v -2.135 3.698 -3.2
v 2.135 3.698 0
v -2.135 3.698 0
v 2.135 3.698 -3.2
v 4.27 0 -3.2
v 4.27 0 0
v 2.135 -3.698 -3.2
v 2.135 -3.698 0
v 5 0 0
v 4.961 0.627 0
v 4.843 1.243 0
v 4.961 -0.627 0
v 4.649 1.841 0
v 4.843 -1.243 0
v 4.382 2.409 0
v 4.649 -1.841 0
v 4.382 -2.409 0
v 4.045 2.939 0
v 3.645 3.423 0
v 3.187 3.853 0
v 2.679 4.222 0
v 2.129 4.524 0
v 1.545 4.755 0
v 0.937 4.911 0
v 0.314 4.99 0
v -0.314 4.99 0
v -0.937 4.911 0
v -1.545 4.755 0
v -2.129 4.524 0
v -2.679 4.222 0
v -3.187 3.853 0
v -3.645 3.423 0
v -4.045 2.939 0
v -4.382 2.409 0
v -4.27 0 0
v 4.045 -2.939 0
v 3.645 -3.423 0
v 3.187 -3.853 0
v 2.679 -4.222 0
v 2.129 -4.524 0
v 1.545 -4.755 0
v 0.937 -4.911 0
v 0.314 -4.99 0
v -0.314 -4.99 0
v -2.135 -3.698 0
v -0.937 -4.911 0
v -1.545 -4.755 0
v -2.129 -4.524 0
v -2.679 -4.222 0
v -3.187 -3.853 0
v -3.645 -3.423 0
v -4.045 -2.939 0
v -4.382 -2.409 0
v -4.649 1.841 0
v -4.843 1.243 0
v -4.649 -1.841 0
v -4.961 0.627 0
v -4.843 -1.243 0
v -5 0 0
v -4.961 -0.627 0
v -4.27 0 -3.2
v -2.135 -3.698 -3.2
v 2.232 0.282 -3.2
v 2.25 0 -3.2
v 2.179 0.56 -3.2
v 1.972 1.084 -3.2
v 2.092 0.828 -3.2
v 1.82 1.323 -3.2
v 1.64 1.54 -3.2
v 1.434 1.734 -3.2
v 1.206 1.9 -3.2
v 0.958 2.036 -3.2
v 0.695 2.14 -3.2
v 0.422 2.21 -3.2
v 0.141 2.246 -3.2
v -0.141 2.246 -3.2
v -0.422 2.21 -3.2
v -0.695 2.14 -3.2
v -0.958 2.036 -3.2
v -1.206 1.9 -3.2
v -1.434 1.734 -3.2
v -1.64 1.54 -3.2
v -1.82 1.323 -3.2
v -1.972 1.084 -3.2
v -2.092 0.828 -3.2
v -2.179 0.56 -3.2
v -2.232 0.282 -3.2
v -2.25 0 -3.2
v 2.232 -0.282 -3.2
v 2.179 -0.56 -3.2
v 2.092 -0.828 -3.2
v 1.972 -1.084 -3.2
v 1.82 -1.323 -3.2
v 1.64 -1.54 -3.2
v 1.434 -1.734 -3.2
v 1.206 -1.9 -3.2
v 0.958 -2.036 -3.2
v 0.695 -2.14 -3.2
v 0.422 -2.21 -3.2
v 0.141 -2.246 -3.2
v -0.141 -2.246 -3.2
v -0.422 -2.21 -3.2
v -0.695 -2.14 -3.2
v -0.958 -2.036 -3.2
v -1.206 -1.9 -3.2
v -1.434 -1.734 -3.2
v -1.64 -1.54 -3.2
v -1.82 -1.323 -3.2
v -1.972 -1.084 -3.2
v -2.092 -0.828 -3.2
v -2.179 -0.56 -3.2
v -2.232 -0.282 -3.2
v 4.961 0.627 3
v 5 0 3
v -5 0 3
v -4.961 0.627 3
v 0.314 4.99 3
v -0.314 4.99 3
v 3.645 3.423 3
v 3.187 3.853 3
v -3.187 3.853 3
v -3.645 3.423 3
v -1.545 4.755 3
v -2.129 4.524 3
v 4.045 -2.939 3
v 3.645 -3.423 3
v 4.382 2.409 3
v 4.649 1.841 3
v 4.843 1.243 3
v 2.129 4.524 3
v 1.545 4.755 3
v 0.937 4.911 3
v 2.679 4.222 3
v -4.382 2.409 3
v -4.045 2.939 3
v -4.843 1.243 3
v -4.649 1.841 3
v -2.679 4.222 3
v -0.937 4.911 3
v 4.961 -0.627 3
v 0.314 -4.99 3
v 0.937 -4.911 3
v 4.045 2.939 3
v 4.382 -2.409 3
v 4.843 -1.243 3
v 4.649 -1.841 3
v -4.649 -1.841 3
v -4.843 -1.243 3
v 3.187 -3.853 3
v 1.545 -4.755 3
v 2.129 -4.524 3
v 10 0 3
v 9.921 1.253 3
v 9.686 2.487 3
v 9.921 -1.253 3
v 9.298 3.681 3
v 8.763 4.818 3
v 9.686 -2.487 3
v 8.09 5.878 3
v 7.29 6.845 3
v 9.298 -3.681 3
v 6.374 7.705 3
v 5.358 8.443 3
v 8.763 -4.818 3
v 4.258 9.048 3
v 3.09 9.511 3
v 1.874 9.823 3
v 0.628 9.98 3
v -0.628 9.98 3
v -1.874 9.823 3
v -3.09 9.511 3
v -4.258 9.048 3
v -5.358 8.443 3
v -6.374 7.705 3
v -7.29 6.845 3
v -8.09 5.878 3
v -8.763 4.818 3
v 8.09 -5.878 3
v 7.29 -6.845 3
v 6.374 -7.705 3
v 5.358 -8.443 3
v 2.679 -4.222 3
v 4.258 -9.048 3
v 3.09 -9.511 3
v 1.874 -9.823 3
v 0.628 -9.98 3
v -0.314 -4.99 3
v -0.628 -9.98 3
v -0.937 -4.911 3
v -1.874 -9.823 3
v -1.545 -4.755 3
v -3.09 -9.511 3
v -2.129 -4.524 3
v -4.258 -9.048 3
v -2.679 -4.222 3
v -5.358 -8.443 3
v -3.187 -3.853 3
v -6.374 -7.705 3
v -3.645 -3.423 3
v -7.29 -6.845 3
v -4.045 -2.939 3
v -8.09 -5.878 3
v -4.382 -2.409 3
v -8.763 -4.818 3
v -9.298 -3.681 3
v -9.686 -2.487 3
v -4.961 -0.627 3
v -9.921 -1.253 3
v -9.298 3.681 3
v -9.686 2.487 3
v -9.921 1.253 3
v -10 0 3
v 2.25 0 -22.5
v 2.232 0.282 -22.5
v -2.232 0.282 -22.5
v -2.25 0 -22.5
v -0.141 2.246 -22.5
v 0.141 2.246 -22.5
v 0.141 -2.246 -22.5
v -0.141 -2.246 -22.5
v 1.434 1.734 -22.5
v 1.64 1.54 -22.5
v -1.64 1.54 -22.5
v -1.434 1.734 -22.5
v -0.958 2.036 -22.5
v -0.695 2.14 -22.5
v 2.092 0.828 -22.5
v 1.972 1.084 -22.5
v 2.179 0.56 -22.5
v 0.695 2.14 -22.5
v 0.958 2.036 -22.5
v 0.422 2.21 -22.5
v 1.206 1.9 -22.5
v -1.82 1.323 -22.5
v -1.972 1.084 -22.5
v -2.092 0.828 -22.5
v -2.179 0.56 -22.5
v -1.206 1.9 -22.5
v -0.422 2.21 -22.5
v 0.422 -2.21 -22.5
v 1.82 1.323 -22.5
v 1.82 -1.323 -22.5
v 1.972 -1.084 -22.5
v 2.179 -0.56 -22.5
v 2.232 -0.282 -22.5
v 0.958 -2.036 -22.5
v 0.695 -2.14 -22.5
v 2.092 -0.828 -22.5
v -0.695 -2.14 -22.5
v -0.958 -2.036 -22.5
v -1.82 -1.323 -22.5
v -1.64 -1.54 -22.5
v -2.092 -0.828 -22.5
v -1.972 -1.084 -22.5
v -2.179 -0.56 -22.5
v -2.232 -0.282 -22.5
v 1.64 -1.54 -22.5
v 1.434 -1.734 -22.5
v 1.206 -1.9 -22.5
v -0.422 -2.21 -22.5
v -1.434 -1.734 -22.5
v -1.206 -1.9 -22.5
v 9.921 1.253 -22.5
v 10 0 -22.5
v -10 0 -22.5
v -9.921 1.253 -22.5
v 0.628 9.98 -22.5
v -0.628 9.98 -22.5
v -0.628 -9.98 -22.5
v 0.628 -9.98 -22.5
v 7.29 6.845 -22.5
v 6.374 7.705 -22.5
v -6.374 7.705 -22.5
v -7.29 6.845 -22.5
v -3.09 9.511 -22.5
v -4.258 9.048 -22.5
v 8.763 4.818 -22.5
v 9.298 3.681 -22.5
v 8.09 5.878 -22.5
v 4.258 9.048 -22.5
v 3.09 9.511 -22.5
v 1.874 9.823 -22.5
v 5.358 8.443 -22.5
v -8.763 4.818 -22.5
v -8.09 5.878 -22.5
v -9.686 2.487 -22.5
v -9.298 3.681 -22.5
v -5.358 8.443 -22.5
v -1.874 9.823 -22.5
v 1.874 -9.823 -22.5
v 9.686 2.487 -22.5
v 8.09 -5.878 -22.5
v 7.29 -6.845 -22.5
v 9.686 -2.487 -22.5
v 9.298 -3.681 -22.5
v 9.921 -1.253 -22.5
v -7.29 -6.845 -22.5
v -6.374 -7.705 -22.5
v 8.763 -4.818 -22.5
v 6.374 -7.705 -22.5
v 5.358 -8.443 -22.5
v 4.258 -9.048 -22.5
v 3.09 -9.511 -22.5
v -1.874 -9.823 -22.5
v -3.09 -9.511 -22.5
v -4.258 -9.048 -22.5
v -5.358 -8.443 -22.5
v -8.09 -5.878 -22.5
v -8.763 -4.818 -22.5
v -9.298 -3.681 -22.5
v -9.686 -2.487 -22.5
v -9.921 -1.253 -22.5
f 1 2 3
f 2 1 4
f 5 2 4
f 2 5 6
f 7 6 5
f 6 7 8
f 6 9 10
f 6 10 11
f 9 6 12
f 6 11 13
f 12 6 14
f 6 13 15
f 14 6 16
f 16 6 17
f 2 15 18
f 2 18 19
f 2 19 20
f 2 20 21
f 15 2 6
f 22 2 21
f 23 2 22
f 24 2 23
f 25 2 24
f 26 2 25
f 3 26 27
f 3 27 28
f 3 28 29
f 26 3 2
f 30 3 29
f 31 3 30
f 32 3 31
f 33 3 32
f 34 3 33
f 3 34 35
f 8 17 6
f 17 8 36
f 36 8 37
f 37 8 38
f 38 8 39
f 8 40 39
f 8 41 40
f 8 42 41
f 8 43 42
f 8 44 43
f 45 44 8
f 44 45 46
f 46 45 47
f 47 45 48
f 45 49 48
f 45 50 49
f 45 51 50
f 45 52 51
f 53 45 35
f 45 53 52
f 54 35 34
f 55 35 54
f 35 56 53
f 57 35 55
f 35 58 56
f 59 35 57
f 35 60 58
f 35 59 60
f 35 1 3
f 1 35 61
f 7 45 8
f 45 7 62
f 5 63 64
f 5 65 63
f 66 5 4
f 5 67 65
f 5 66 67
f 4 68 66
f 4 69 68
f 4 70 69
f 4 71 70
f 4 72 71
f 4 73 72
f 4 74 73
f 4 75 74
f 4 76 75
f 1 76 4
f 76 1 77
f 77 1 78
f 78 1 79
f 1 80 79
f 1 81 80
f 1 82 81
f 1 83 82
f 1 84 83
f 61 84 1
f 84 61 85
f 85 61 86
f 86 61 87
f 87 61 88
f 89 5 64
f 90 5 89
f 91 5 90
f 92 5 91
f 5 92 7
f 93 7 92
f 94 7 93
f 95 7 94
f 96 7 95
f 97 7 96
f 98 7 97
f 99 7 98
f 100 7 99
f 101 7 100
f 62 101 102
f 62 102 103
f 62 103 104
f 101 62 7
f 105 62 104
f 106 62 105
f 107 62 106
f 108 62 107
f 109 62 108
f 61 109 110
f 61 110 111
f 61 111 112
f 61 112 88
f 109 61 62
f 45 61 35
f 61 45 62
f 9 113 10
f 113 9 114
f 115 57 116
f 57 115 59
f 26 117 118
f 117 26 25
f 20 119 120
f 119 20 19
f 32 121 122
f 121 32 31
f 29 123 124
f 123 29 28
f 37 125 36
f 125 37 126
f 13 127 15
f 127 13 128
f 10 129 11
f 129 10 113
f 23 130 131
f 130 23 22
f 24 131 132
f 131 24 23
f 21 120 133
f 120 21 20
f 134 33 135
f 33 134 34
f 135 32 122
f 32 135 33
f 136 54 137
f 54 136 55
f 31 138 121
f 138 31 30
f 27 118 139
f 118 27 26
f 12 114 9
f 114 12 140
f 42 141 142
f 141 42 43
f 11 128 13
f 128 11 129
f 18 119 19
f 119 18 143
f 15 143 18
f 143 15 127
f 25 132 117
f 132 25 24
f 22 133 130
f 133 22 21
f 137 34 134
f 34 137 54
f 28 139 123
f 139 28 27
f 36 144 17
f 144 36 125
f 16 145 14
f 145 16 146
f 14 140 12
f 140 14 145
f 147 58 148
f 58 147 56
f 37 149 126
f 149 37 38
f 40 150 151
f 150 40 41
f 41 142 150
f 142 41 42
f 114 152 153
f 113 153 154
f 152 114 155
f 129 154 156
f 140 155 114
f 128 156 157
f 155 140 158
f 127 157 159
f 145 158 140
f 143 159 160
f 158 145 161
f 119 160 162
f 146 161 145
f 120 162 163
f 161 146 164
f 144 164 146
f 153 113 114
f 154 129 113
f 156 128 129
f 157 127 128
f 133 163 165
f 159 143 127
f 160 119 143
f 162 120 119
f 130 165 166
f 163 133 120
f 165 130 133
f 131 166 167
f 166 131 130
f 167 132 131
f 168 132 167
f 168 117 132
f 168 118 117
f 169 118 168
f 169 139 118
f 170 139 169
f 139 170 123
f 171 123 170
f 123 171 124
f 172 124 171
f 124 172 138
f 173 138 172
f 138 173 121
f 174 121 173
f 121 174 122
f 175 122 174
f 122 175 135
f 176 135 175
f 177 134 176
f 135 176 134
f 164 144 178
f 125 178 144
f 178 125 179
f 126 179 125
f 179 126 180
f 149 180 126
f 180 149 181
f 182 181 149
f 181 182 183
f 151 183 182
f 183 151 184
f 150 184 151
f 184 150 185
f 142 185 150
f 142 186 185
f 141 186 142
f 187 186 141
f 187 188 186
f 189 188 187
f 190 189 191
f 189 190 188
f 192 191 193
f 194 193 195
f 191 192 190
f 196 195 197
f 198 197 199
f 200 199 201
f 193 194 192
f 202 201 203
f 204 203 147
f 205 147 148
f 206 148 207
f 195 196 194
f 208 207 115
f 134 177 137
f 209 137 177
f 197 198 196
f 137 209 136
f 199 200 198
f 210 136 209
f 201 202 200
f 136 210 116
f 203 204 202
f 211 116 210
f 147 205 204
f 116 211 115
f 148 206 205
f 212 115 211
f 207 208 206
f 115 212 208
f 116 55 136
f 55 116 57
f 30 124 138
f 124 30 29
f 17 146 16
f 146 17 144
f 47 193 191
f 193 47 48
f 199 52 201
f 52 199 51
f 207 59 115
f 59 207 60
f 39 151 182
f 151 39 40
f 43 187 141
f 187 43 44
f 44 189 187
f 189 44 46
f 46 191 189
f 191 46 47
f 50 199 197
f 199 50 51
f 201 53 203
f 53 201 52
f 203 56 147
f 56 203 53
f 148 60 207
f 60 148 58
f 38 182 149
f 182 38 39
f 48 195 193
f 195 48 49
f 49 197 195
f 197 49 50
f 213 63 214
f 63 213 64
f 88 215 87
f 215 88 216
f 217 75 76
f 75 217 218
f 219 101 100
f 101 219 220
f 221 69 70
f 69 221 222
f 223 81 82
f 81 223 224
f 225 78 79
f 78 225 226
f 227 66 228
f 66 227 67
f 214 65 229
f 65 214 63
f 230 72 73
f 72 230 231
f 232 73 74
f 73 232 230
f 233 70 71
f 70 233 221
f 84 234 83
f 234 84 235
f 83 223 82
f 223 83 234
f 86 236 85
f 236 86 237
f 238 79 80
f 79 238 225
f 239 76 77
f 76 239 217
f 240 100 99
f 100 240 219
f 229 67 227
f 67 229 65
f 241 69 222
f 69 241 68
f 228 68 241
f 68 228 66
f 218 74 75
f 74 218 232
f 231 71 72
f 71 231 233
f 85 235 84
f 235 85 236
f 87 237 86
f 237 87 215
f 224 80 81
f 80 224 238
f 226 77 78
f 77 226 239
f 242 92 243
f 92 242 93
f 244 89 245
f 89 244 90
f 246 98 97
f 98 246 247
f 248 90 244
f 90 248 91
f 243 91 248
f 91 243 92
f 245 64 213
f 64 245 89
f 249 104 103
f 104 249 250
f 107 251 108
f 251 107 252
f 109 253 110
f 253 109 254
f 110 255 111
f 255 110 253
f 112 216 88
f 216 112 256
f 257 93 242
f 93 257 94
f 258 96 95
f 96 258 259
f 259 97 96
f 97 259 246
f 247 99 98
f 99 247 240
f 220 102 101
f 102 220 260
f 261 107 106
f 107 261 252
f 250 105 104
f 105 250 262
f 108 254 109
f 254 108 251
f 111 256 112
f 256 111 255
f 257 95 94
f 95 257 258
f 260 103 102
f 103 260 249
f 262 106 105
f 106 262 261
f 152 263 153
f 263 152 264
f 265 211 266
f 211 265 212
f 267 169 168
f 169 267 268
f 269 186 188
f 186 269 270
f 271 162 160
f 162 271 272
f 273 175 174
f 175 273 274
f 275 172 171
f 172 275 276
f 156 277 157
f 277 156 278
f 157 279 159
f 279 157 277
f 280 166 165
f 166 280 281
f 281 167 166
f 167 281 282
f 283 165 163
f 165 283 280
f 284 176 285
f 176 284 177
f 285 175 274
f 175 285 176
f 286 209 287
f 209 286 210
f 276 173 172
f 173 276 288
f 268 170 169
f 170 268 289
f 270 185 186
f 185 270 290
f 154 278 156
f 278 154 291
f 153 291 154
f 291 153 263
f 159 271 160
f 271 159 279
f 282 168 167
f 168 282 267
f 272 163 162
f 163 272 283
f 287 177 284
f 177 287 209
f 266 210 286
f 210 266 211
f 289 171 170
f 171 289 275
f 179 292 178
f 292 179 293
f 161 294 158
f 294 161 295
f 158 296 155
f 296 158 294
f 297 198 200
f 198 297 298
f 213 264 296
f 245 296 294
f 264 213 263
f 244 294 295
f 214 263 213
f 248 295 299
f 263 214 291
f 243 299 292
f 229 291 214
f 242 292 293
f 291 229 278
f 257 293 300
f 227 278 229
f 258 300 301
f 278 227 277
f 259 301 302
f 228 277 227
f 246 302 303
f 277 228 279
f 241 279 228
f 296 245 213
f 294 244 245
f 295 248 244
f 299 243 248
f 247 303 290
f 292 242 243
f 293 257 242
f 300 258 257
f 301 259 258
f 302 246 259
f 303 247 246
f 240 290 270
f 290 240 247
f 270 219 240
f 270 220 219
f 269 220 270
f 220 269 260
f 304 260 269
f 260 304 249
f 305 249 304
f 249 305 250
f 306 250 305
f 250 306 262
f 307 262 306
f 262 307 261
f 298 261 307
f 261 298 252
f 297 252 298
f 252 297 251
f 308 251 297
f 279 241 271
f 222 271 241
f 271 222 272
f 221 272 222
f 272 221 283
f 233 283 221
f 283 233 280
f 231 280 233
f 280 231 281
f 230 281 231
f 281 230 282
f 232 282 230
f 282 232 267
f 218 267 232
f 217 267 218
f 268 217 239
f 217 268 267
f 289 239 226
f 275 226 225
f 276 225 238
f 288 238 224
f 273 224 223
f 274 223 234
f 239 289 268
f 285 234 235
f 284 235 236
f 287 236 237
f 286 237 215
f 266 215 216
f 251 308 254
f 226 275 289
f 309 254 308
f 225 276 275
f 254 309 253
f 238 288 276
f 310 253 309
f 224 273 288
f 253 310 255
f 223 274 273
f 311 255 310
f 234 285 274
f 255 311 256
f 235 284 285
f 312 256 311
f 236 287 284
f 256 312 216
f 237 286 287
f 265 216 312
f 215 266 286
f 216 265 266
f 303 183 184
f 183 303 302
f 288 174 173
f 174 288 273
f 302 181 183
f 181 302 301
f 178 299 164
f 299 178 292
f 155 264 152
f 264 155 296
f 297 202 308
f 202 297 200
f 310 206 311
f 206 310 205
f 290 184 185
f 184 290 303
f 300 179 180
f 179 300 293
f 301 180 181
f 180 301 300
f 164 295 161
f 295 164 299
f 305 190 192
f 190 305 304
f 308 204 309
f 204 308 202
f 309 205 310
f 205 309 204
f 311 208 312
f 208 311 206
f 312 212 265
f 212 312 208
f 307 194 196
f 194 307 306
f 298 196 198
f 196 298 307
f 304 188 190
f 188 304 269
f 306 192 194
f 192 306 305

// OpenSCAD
$fn = 50;

difference() {
	union() {
		translate(v = [0, 0, -22.5]) {
			cylinder(h = 25.5, r = 10.0);
		}
	}
	union() {
		translate(v = [0, 0, 0]) {
			rotate(a = [0, 0, 0]) {
				difference() {
					union() {
						translate(v = [0, 0, -3.2]) {
							linear_extrude(height = 3.2) {
								polygon(points = [[4.2698, 0.0], [2.1349000000000005, 3.697755269078796], [-2.134899999999999, 3.6977552690787965], [-4.2698, 5.228996902999369e-16], [-2.134900000000002, -3.6977552690787956], [2.1348999999999974, -3.697755269078798]]);
							}
						}
					}
					union();
				}
			}
		}
		#cylinder(h = 3, r = 5.0);
		#translate(v = [0, 0, -100.0]) {
			cylinder(h = 200, r = 2.25);
		}
	}
}
